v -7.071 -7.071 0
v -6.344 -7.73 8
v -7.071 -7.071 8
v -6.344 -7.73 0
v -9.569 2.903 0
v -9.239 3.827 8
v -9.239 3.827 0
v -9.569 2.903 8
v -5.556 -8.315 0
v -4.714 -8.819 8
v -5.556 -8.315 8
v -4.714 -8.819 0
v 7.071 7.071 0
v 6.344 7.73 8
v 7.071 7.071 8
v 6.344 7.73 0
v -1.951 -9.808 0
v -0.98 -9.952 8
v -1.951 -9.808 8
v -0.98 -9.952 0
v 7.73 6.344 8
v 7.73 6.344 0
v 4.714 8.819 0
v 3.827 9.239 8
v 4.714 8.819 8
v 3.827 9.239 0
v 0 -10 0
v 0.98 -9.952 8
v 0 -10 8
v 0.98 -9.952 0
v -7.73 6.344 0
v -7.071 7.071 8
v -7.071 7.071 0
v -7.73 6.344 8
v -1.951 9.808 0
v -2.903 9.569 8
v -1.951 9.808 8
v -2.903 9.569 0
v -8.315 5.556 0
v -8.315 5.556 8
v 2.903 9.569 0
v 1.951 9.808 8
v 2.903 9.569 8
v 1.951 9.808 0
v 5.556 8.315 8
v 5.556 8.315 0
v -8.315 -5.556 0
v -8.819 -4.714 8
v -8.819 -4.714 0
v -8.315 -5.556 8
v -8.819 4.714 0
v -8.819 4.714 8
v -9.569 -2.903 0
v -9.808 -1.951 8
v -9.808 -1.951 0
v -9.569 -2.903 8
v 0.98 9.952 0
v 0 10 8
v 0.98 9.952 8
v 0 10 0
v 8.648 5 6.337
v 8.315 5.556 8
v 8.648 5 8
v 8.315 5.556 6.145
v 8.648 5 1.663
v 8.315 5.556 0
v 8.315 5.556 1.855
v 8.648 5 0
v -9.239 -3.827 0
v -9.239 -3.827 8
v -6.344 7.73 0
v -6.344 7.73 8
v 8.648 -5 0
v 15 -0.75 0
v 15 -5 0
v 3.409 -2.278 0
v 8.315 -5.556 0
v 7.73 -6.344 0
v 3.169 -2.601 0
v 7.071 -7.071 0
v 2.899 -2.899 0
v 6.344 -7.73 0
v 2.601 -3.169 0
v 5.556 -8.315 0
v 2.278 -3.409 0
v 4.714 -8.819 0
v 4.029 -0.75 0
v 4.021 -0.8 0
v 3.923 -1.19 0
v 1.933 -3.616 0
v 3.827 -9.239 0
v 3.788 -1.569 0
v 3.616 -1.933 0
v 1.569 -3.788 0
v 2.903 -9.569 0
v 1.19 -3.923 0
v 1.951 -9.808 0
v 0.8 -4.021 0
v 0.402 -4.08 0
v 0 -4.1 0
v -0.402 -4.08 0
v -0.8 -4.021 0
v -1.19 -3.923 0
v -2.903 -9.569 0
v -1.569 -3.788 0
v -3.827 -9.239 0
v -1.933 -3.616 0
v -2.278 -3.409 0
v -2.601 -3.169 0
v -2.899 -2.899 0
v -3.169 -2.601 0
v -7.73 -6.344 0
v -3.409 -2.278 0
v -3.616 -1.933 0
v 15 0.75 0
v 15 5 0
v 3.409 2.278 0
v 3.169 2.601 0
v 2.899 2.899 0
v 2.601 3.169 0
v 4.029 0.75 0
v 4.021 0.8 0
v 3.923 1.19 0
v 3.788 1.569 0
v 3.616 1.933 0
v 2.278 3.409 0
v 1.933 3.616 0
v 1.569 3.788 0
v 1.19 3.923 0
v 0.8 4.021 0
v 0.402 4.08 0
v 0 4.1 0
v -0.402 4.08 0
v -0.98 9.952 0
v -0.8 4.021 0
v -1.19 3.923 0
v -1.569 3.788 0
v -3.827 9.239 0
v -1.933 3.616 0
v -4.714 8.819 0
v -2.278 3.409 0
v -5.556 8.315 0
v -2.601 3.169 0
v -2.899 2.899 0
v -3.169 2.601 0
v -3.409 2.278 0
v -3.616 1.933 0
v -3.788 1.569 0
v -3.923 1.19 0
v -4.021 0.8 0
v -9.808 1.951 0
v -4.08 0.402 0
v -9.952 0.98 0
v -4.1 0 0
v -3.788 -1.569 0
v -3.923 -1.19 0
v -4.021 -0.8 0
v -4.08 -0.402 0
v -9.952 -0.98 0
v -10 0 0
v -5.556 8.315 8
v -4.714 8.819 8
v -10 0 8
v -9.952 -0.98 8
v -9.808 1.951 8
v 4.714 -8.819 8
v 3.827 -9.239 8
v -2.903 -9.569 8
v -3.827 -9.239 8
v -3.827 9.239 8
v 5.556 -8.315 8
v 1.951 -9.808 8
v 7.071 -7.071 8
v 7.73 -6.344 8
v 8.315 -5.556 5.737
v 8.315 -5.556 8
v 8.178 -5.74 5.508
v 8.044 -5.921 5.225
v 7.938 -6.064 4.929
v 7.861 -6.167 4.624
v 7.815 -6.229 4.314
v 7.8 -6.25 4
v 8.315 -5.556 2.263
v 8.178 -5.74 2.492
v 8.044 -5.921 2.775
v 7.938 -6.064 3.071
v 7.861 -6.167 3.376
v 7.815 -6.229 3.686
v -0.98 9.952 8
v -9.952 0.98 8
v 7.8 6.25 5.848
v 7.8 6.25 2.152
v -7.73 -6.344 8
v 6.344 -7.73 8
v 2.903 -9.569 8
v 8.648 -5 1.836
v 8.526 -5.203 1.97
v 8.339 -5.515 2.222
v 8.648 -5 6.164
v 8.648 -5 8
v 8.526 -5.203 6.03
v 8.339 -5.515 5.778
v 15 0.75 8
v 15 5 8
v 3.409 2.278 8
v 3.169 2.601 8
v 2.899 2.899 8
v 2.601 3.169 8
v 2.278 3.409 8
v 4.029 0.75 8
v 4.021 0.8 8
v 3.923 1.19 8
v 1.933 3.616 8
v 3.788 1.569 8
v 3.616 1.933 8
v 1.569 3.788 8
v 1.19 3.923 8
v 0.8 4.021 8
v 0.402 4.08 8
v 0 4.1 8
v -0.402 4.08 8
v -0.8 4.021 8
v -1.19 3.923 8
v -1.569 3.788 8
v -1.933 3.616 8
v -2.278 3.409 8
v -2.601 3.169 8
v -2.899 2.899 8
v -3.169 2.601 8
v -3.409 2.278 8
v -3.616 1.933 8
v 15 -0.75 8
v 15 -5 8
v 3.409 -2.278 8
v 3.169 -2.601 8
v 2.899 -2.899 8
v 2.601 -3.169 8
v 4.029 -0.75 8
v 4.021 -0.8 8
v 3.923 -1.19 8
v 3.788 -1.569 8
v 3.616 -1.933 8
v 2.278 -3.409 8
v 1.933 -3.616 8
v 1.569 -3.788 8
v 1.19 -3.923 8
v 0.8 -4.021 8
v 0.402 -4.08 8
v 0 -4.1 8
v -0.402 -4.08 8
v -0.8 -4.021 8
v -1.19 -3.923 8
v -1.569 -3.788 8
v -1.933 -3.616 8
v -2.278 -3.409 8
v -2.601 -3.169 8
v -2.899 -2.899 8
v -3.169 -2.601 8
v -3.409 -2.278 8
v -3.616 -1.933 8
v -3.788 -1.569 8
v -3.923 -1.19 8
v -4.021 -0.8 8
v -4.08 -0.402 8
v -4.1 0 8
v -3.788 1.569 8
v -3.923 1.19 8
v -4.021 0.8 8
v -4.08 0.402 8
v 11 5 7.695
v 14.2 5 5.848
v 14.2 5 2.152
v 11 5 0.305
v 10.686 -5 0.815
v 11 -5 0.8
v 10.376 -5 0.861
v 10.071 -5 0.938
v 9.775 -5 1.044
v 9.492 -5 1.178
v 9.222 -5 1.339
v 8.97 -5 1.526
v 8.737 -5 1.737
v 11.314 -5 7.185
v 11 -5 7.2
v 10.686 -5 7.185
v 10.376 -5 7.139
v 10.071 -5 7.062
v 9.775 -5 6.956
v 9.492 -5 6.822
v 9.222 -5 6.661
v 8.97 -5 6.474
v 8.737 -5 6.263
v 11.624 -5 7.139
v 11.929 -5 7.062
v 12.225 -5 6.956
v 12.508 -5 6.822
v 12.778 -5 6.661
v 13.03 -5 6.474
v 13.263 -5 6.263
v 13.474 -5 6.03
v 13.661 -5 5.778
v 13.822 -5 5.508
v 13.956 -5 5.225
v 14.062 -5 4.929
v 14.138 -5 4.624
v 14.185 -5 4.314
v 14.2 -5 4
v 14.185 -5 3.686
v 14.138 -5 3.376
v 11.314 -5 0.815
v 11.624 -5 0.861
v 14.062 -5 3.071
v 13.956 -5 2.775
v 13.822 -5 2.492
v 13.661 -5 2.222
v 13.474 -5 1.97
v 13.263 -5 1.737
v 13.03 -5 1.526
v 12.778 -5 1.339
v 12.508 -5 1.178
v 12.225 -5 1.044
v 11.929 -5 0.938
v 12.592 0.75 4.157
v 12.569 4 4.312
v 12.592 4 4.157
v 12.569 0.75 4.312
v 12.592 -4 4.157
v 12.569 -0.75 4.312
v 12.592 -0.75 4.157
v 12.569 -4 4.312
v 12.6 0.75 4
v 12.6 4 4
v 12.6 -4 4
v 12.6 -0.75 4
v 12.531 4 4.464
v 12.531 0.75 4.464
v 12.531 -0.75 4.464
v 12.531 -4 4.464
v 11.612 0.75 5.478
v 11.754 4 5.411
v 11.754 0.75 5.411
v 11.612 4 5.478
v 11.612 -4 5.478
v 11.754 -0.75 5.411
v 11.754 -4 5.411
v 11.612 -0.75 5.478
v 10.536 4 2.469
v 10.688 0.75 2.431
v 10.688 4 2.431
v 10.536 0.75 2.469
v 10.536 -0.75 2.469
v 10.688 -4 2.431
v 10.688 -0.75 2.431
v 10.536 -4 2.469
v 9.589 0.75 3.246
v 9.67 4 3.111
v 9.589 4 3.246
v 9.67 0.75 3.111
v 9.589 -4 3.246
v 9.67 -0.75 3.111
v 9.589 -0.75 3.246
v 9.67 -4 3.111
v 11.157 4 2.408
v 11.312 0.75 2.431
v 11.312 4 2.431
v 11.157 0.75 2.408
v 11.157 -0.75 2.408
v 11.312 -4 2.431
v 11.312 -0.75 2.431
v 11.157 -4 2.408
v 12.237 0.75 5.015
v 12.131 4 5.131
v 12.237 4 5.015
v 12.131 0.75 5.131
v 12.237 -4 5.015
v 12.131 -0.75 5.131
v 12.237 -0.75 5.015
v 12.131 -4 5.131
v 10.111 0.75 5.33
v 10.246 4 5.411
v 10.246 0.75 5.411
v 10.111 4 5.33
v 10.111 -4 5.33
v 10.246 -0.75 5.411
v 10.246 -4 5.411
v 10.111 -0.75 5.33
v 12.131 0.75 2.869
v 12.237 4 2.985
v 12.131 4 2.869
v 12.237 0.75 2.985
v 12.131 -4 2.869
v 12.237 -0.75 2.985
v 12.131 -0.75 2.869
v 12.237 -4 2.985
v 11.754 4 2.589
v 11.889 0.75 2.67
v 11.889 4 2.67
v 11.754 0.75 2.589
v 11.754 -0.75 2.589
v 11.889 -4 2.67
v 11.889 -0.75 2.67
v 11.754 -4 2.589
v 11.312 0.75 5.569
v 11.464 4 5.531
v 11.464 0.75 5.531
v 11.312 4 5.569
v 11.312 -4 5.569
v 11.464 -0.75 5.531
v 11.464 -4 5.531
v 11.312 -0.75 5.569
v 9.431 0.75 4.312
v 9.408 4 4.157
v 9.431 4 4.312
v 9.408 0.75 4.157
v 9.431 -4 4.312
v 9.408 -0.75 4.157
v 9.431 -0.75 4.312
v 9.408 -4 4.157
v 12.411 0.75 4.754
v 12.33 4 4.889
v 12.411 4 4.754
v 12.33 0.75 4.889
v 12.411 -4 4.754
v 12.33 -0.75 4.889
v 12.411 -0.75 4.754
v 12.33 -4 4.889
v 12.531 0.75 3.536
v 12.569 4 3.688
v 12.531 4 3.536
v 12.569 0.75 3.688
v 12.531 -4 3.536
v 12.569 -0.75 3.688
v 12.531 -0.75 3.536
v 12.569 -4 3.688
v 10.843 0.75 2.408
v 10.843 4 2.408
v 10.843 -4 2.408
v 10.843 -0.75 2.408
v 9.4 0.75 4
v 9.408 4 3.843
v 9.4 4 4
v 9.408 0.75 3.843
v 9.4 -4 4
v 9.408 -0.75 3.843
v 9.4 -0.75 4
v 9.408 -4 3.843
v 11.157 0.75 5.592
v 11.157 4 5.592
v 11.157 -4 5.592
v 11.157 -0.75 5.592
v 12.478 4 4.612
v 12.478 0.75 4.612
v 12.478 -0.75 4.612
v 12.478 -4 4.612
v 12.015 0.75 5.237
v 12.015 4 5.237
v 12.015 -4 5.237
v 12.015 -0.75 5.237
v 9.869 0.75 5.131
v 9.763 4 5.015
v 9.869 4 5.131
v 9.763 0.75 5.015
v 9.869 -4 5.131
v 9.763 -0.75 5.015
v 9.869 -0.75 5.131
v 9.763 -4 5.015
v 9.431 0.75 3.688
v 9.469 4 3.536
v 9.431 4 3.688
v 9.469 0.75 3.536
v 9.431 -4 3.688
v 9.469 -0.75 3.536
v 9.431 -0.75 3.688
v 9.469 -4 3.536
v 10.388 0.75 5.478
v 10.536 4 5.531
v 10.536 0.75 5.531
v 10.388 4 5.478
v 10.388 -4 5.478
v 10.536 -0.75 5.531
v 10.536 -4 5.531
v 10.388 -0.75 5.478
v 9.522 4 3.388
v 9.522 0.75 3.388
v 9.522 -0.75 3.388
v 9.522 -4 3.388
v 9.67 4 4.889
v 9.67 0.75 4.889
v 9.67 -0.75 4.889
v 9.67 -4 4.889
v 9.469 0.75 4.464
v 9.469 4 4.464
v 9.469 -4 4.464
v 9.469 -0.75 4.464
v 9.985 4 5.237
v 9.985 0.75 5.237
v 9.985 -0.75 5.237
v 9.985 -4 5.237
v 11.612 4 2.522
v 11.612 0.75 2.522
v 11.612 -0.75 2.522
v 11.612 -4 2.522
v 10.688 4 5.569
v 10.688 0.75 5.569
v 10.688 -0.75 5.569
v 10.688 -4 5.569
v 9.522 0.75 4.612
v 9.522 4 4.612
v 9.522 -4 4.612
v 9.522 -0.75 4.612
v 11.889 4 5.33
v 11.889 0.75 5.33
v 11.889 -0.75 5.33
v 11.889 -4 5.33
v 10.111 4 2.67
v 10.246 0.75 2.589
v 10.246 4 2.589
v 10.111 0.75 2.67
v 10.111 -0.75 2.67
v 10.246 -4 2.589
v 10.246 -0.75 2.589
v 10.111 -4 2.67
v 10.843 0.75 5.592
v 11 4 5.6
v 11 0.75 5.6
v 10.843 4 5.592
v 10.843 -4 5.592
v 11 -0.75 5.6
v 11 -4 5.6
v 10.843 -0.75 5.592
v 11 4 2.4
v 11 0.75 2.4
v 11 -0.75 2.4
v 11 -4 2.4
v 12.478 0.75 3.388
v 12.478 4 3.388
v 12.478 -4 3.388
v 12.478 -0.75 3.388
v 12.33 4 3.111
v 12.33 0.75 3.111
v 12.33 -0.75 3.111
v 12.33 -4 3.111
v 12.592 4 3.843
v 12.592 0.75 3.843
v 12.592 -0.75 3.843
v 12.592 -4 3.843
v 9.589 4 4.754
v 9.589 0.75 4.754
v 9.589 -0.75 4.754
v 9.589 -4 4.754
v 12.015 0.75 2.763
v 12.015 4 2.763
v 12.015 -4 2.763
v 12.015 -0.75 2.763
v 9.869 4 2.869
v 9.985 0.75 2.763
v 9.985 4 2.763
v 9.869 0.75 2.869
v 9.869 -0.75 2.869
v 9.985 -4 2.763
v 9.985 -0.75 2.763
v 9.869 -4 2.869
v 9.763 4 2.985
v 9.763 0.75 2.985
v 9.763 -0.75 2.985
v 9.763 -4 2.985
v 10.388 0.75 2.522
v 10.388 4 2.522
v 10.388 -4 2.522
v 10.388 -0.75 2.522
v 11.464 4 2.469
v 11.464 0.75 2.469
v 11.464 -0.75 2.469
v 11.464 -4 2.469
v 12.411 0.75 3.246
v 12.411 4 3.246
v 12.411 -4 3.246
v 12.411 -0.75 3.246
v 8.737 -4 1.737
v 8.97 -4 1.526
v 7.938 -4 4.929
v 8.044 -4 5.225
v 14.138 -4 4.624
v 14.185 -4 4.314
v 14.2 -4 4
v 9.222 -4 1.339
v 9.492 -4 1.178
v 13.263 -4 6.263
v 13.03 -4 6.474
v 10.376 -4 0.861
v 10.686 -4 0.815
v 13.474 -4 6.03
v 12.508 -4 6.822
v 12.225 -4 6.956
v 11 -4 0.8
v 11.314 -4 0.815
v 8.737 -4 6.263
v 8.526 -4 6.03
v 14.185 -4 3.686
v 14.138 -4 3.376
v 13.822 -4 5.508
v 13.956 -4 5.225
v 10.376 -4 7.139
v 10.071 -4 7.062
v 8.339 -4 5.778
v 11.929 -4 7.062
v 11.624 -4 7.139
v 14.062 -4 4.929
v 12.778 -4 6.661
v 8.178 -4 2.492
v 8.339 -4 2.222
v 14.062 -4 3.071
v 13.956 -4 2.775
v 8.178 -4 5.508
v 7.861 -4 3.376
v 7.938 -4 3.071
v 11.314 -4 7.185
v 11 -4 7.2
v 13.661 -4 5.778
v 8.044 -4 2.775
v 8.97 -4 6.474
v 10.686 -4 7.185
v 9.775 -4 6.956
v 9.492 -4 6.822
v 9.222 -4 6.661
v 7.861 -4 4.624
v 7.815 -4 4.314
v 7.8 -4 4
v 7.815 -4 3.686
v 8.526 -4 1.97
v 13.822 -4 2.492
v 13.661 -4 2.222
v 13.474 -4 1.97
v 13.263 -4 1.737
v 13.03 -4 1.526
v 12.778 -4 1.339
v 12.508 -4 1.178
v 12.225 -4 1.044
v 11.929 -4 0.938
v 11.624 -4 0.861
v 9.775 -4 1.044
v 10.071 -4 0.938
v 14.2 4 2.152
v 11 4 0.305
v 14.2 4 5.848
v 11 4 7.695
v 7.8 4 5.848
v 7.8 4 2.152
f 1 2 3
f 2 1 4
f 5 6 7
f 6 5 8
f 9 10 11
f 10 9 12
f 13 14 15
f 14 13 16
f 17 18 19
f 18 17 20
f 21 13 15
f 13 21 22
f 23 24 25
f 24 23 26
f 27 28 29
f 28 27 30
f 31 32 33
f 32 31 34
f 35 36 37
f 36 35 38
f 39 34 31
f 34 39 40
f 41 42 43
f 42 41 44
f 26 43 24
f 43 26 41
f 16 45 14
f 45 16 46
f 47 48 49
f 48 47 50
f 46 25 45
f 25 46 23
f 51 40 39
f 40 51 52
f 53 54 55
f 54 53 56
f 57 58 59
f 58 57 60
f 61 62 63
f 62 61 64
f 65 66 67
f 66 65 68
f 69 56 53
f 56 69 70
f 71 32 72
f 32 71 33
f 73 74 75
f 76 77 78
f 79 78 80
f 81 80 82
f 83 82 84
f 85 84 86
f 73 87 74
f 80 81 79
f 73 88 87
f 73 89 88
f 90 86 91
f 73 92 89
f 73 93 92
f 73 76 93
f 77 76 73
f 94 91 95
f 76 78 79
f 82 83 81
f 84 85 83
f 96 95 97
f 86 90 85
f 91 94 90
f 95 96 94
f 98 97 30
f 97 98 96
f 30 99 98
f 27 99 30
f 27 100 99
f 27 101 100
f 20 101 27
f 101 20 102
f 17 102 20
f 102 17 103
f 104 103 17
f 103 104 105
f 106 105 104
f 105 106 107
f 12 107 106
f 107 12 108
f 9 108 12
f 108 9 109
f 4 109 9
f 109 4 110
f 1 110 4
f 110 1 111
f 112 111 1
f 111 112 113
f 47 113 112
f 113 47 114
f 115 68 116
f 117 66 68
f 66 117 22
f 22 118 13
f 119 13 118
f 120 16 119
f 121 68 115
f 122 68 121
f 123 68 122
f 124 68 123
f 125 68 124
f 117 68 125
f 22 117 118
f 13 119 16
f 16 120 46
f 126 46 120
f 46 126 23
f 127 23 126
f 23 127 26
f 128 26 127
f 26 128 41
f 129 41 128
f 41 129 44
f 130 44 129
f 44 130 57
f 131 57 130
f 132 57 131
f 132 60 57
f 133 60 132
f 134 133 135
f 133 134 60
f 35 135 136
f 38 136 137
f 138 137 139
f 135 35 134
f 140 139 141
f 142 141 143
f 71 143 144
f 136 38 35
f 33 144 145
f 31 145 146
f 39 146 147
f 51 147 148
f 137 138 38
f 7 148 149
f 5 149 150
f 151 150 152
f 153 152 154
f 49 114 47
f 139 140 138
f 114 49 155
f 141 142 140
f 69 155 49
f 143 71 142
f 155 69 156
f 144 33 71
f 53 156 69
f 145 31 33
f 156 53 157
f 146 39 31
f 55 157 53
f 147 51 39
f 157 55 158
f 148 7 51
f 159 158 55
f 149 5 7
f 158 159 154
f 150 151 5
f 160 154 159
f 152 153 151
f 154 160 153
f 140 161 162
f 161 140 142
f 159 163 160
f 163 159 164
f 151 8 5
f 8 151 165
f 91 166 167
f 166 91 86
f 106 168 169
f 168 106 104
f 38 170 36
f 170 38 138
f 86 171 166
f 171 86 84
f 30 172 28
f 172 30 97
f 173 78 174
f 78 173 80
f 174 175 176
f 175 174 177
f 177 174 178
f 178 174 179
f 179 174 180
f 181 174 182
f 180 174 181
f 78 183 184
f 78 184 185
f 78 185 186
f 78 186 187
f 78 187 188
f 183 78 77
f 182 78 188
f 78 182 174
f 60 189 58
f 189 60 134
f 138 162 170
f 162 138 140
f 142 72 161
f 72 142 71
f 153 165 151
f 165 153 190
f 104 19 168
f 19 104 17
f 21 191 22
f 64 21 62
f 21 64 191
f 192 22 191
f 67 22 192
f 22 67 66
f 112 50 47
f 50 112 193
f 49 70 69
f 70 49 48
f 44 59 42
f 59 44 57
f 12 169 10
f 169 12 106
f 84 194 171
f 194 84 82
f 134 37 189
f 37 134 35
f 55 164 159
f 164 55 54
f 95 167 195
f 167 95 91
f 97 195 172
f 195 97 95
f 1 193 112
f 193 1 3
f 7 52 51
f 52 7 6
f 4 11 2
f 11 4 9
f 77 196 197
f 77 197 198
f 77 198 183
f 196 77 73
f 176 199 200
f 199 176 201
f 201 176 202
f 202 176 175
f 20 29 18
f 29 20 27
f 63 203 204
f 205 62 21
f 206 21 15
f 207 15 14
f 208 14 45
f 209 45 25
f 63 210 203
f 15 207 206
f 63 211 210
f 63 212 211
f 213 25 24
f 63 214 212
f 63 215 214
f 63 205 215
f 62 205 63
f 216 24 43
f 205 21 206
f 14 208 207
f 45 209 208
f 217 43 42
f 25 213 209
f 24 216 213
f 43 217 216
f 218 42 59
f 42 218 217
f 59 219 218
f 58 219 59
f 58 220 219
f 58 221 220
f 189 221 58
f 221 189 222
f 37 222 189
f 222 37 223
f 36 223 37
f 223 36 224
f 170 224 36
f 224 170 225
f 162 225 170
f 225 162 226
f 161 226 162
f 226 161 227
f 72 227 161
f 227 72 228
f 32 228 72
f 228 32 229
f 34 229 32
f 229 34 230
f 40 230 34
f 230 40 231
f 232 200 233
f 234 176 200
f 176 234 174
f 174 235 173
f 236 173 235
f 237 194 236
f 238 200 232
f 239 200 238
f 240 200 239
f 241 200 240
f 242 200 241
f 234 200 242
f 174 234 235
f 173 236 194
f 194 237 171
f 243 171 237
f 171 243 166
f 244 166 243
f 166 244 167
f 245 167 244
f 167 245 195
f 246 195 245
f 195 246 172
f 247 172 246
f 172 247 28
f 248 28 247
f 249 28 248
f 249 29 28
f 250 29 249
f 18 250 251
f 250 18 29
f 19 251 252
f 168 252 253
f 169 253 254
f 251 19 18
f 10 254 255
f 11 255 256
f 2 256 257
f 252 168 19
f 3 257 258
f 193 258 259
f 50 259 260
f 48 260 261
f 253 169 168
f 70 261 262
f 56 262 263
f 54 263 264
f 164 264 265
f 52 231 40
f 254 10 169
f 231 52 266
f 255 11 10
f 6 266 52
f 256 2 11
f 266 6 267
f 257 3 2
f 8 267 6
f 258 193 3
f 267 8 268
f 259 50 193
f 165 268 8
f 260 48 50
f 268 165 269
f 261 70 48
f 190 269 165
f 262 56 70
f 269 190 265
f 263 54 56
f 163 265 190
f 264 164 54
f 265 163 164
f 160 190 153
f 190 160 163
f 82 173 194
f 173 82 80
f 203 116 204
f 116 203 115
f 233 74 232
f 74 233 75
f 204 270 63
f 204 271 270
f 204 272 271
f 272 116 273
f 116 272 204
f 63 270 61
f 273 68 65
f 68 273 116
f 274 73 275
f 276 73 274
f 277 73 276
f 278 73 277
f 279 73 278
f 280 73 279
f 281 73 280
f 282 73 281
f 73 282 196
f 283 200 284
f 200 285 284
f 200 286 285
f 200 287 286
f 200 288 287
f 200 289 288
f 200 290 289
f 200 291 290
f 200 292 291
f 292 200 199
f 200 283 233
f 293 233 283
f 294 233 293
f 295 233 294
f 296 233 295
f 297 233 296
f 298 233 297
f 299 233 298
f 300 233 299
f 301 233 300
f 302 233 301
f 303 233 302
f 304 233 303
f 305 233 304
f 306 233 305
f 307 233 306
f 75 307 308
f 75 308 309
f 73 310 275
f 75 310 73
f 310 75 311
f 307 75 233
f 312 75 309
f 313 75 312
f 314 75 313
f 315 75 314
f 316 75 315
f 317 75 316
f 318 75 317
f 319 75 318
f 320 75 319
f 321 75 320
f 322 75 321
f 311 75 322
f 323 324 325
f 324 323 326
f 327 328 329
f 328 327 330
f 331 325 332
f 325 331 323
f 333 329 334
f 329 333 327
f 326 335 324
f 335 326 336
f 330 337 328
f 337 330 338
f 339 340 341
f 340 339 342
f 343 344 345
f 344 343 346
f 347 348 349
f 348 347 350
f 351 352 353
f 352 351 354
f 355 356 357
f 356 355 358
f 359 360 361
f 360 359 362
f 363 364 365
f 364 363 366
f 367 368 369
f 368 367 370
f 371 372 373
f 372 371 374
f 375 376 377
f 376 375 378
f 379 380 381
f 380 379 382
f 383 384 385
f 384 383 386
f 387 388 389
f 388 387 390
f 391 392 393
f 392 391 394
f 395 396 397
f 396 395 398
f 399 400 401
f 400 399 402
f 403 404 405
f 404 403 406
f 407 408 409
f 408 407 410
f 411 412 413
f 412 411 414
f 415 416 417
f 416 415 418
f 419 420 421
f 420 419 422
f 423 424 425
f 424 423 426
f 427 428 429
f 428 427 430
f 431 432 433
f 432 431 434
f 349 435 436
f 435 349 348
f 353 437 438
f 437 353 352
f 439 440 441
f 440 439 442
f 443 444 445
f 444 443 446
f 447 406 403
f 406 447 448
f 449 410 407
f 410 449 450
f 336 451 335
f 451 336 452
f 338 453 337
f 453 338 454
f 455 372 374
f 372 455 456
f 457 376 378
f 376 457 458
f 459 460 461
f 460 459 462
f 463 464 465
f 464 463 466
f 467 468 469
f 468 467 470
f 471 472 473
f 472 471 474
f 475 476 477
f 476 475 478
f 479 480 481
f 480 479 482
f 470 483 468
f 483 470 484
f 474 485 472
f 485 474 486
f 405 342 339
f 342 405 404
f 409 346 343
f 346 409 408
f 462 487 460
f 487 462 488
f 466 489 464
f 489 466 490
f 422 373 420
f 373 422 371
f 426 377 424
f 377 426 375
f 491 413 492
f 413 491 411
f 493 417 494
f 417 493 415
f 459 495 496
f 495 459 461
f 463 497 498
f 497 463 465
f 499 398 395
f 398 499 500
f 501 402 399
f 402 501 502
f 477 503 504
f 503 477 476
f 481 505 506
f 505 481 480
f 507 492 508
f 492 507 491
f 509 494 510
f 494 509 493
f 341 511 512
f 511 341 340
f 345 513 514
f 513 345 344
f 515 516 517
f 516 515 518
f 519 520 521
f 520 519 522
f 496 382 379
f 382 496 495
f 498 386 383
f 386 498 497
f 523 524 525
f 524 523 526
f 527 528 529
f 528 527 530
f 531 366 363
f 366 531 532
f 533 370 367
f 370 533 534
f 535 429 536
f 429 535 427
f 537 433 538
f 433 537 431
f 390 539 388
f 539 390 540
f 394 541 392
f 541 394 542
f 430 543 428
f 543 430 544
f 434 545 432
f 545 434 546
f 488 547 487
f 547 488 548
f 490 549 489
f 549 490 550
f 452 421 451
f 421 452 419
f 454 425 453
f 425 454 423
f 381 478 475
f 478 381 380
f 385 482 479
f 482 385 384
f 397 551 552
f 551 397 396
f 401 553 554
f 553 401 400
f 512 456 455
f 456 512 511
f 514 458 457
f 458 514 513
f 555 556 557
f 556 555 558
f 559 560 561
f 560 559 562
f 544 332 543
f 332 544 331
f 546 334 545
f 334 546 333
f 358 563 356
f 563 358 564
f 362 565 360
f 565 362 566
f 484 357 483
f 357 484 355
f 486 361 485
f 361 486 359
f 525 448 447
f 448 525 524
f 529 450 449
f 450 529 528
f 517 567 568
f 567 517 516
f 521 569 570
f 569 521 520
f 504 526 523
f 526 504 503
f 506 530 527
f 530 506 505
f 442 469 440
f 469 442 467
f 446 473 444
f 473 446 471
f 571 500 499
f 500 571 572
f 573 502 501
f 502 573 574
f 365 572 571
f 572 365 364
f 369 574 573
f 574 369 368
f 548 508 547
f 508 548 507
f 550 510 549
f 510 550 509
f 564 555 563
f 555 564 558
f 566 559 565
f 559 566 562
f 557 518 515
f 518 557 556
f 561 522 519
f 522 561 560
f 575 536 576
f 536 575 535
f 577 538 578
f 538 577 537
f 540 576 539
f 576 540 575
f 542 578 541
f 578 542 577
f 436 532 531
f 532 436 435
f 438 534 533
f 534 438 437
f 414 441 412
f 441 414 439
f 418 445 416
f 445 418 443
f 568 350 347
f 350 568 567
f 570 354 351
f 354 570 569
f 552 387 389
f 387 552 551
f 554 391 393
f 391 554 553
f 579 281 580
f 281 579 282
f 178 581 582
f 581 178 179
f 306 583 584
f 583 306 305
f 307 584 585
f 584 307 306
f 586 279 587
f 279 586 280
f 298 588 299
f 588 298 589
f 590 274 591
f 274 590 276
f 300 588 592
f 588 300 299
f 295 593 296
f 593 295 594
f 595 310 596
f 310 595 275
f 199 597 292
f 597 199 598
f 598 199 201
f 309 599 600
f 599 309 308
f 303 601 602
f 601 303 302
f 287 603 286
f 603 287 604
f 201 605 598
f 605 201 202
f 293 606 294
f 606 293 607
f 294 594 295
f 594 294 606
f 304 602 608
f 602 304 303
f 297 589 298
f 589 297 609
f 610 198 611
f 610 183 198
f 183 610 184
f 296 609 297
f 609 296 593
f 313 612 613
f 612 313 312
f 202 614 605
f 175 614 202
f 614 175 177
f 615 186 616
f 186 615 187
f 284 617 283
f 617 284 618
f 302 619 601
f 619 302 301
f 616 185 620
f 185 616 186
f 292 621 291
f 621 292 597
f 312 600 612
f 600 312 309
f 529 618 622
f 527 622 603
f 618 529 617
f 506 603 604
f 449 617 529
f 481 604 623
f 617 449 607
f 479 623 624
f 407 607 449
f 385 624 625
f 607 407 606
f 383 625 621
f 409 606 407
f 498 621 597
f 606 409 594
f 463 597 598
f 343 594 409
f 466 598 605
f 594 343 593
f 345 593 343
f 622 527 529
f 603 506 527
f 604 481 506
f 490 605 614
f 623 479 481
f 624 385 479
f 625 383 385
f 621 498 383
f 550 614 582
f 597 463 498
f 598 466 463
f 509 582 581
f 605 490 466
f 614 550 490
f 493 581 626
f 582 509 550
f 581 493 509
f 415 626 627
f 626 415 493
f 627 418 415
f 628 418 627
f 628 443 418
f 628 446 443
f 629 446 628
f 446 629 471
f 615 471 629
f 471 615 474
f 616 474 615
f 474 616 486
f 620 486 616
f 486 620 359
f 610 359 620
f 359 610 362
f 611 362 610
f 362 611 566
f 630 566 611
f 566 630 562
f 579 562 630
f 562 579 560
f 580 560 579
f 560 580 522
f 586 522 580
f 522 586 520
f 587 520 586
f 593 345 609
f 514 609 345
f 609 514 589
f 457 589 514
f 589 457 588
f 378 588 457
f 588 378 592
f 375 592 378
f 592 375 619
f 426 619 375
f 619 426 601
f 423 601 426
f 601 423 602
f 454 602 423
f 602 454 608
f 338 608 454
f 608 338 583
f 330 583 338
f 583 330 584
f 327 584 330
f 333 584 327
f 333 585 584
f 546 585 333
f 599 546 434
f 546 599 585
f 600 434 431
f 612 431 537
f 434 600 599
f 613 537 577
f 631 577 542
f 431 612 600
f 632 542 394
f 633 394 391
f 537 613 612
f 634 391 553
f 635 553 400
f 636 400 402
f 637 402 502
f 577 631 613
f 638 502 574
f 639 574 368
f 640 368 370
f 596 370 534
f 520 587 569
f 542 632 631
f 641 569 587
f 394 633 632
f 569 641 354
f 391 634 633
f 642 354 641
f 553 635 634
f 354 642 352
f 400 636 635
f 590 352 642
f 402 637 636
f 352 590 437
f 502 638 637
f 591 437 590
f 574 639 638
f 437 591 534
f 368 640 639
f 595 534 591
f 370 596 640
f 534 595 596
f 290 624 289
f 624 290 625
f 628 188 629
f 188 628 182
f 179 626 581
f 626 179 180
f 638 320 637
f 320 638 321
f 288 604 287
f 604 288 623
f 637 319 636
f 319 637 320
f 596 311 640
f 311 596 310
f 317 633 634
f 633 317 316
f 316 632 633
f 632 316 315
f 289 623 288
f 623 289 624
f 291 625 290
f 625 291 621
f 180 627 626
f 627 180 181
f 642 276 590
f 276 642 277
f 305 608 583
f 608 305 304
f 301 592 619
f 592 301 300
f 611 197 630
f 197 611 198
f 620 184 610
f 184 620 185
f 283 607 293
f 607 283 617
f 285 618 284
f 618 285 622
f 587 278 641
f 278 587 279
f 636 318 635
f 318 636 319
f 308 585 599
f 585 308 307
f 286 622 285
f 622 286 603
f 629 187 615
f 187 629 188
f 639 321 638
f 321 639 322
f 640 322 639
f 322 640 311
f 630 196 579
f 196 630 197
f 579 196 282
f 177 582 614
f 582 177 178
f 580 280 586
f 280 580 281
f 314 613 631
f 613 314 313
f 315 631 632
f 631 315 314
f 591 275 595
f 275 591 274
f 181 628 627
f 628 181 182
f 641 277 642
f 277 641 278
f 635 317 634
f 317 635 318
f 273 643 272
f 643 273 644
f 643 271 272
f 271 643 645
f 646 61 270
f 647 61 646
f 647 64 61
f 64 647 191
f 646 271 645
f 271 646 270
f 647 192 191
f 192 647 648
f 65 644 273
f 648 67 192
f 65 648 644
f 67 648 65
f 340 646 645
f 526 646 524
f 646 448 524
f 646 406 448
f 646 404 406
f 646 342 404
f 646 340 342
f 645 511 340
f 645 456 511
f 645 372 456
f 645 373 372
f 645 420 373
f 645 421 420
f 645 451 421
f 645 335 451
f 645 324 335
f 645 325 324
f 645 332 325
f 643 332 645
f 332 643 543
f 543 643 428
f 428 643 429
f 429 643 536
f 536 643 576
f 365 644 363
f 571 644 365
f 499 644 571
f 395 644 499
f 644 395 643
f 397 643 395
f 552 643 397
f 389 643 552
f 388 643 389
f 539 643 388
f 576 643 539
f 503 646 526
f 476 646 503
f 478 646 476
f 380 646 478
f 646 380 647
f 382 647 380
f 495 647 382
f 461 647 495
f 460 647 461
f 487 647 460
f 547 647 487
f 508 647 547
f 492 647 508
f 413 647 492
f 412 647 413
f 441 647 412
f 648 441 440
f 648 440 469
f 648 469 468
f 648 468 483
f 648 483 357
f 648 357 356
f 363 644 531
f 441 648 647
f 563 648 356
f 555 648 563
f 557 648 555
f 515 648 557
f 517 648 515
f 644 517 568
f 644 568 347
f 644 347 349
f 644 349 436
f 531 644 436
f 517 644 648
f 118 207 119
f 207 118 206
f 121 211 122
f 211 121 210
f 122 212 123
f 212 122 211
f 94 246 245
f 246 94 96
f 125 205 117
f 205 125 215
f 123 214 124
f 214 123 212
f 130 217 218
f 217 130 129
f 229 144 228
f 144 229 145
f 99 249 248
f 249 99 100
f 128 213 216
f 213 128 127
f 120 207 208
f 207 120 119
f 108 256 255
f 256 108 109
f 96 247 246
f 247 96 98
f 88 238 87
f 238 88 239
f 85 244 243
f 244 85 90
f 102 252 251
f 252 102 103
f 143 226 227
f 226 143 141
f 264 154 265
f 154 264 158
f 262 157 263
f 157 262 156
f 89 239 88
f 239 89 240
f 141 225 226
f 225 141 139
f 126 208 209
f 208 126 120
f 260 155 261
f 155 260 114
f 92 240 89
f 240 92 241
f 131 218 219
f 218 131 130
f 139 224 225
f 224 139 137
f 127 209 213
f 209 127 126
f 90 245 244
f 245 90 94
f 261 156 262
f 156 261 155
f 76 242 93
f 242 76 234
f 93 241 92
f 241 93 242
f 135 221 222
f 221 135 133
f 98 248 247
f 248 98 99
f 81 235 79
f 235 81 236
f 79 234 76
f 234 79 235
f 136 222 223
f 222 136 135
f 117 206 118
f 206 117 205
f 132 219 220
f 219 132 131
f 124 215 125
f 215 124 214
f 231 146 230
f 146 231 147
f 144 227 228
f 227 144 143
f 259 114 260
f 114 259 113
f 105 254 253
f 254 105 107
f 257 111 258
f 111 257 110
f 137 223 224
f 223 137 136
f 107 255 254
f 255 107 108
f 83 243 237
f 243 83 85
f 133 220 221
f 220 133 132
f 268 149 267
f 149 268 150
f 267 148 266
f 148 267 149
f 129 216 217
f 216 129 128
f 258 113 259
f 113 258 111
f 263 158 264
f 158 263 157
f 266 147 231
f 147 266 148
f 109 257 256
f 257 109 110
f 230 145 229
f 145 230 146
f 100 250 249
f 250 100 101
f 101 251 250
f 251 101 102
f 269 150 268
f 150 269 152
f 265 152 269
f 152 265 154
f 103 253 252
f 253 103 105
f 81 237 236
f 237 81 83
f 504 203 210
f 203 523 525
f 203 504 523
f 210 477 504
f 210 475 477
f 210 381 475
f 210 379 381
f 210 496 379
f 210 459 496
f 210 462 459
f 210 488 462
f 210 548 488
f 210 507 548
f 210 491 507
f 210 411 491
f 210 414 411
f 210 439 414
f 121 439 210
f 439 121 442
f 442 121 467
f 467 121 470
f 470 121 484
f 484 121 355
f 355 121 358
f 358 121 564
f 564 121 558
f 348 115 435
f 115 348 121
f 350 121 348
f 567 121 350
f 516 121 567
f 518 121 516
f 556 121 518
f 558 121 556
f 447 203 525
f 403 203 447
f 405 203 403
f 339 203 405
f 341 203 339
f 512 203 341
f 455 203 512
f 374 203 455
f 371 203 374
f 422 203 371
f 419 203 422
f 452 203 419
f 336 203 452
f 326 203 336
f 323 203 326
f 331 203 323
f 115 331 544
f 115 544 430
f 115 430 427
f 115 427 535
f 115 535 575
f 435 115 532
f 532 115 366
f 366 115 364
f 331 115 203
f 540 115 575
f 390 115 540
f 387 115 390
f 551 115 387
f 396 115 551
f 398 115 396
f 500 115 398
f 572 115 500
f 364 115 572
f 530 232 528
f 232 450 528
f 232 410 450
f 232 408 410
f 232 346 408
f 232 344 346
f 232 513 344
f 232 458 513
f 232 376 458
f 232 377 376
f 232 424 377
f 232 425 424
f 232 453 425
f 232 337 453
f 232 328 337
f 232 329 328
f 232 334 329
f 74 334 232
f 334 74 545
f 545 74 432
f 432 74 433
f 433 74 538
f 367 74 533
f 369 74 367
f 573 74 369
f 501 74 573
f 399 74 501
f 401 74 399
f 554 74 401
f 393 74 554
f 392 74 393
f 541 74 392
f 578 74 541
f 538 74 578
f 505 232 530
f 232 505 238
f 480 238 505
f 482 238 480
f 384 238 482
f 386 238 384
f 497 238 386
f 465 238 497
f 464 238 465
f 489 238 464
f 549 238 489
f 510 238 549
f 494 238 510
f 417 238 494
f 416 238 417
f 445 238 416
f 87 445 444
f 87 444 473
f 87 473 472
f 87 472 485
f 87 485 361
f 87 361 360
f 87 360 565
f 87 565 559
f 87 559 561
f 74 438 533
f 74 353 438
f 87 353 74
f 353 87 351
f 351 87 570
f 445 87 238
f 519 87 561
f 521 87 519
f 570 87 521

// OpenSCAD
// file: ../fj.scad
// FreeJet FJ-2 - shared dimensions and helpers.
// Coordinates (mm): X = carriage travel (left -> right, 0 = inner face of the left plate)
//                   Y = paper travel (paper moves toward +Y, 0 = black nozzle line)
//                   Z = up (0 = paper surface on the platen)
// Every part file includes this, so changing a number here moves everything.

$fn = 64;
e = 0.01;
tol = 0.25;          // clearance for printed fits

// ---- which cartridges? (HP 63 / 302 / 123 / 803 family) ---------------------------
// "K" = black only, "CMY" = tri-colour only, "KCMY" = black + tri-colour side by side.
CARTS     = "K";
N_SLOTS   = CARTS == "KCMY" ? 2 : 1;
head_pitch = 28;                      // black-to-colour cartridge spacing in the carriage
head_span = (N_SLOTS - 1) * head_pitch;
function slot_ink(i) = CARTS == "CMY" ? "C" : (i == 0 ? "K" : "C");

// ---- frame ----------------------------------------------------------------
inner_w   = 360 + 2 * head_span;     // distance between the side plates
plate_t   = 8;
rod_d     = 8;
// rods reach through both plates plus a printed collar each side; rounded up to a length
// you can buy (400 mm for one cartridge, 500 mm for black + colour, or cut them)
rod_len   = ceil((inner_w + 2 * 8 + 2 * 8 + 8) / 100) * 100;
plate_y0  = -128;    // side plate outline in Y (includes the roll-holder ear)
plate_y1  = 84;
plate_z0  = -70;     // bottom of the feet
plate_z1  = 70;

// ---- carriage rods ------------------------------------------------------------
rail_y    = -42;
rail_lo_z = 14;
rail_hi_z = 50;
belt_y    = -60;     // axis line of the X motor pulley and idler (both vertical)
belt_z    = 32;      // height of the belt centre
belt_r    = 20*2/PI/2;          // 20T GT2 pitch radius
belt_front_y = belt_y + belt_r; // strand clamped to the carriage
belt_back_y  = belt_y - belt_r; // return strand, passes behind the carriage

// ---- paper path: ONE feed roller just behind the printhead ----------------------------
tire_od   = 22;      // feed roller outside diameter (TPU tires on printed hubs)
feed_y    = -25;     // feed roller axis: as close behind the nozzles as the carriage allows
shaft_z   = -tire_od/2;
// spring-steel leaves press the paper onto the roller (no pinch shaft). They hang from a light
// printed bar spanning the frame above the paper entry; the paper slides in under the bar.
leaf_bar_y = -70;    // bar centre line
leaf_bar_z = 3;      // underside of the bar (paper passes below)
leaf_y1   = -21;     // leaf tip, just past the top of the roller
leaf_w    = 10;      // 0.3 mm spring steel (feeler-gauge strip), cut 52 mm long
leaf_angle = 7.5;    // ledge tilt: the free leaf would end ~2 mm below the paper -> ~0.4 N
tray_y1   = -74;     // front edge of the paper tray
// platen = a printed beam of bolted segments that also braces the frame
web_y     = [-50, -8, 22, 74];   // stiffening webs under the platen (run along X)
web_t     = 4;
web_z0    = -18;                  // bottom of the webs
flange_y  = [-50, 74];            // the two outer webs bolt to the side plates
flange_z  = [-9, -16];            // M3 bolt heights in the plates (vertical slots in the flanges)
platen_y0 = -62;     // platen top surface extent (entry ramp -> tear-off edge)
platen_y1 = 84;
sensor_y  = -42;     // paper lever switch, just before the roller nip
paper_x0  = 70 + head_span;   // paper left edge (fixed guide)
paper_w   = 220;     // widest sheet
sensor_x  = paper_x0 + 14;   // paper lever switch X
tire_x    = [paper_x0+20, paper_x0+75, paper_x0+145, paper_x0+200];  // roller positions

// ---- feed drive: 20T on the motor -> 60T printed pulley on the roller, 200 mm GT2 loop ----
pulley_teeth = 60;
feed_ctr  = 58.6;                     // centre distance for a 200 mm loop with 20T/60T
feed_dir  = [-0.79, -0.62];           // motor sits below and behind the roller
feed_motor_y = feed_y + feed_ctr * feed_dir[0];
feed_motor_z = shaft_z + feed_ctr * feed_dir[1];

// ---- roll holder: keyhole slots in the side plates -------------------------------------
roll_y    = -116;    // spindle axis
roll_z    = 62;
spindle_d = 12;

// ---- cartridges (MEASURE YOURS AND ADJUST) ------------------------------------------------
cart_w    = 21;      // across the carriage travel (X)
cart_d    = 37;      // front-to-back (Y)
cart_h    = 47;
nz_back   = 12;      // nozzle line distance from the contact (back) face
head_gap  = 1.2;     // nozzle plate height above the paper
flex_w    = 22;  flex_h = 26;   // area for the contact flex (salvaged from an HP DeskJet carriage)
carr_w    = 54 + head_span;     // carriage width along X
park_x    = 33;      // black (slot 0) nozzles X when parked (capped); carriage left face at 6
function slot_x(i) = (i - (N_SLOTS - 1) / 2) * head_pitch;   // slot i vs carriage centre

// ---- service station ------------------------------------------------------------
home_x    = 30;      // slot-0 nozzle X where the home switch trips (firmware X = 0)
sled_engage = 9;     // sled travel when parked (cap pressed on the nozzles)
cap_x     = park_x + sled_engage;   // slot-0 cap centre with the sled retracted (caps at head_pitch)
wiper_x   = 56 + head_span;
spit_x    = 62 + head_span;      // firmware spit_x_um = (spit_x - home_x) * 1000

// ---- hardware -----------------------------------------------------------------
lm8uu_d = 15; lm8uu_l = 24;
b608_d = 22; b608_w = 7;
m3 = 3.2; m3_head = 6; m3_nut = 6.4;   // across flats + tolerance
m25 = 2.7;
nema_hole = 31; nema_body = 42.3; nema_boss = 22.5;

// ---- derived layout ------------------------------------------------------------------
// segment boundaries: segment 0 carries the service-station end, the rest share the width
platen_seg0_end = paper_x0 + 88 <= 160 ? paper_x0 + 88 : paper_x0 - 10;   // keep joints off the sensor
platen_rest = ceil((inner_w - platen_seg0_end) / 130);
platen_segs = 1 + platen_rest;
function platen_seg_x(s) = s == 0 ? [0, platen_seg0_end] :
    let(w = (inner_w - platen_seg0_end) / platen_rest)
    [platen_seg0_end + (s - 1) * w, s == platen_segs - 1 ? inner_w : platen_seg0_end + s * w];
// electronics tray position (bolts through the platen webs)
etray_x0  = paper_x0 + 80 + (N_SLOTS > 1 ? 15 : 0);   // keep its bolts off the platen joints
etray_bolts = [etray_x0 + 25, etray_x0 + 95];

module rod_hole(l=40, d=rod_d+tol) { cylinder(d=d, h=l, center=true); }
module m3_hole(l=40) { cylinder(d=m3, h=l, center=true); }
module m3_nut_trap(h=3) { cylinder(d=m3_nut/cos(30), h=h, $fn=6); }
module rounded_box(size, r=3) {
    hull() for (x=[r, size[0]-r], y=[r, size[1]-r]) translate([x, y, 0]) cylinder(r=r, h=size[2]);
}
module nema17_holes(l=20, slot=0) {
    for (x=[-1,1], y=[-1,1]) hull() for (s=[-slot/2, slot/2])
        translate([x*nema_hole/2, y*nema_hole/2 + s, 0]) cylinder(d=m3, h=l, center=true);
    hull() for (s=[-slot/2, slot/2]) translate([0, s, 0]) cylinder(d=nema_boss+1, h=l, center=true);
}

// ---- printed shaft collars --------------------------------------------------------
collar_od = 20; collar_w = 8;

// ---- carriage details ------------------------------------------------------------
carr_z0   = head_gap + 2.5;   // carriage walls stop above the nozzle plate
carr_z1   = 60;
cart_rest_z = 14;              // height (above cartridge bottom) of the side rest tabs; 0 = none
// main file
// Printed split collar for the 8 mm rods (print 6, PETG, 100 % infill). M3x16 + nut.
// Replaces bought shaft collars: both rails and the feed roller shaft get one collar
// against the outside of each side plate.
include <../fj.scad>
module rod_collar() difference() {
    union() {
        cylinder(d=collar_od, h=collar_w);
        translate([0, -5, 0]) cube([collar_od/2 + 5, 10, collar_w]);
    }
    translate([0,0,-1]) cylinder(d=rod_d + 0.2, h=collar_w + 2);
    translate([0, -0.75, -1]) cube([collar_od, 1.5, collar_w + 2]);              // slit
    translate([collar_od/2 + 1, 0, collar_w/2]) rotate([90,0,0]) {
        cylinder(d=m3, h=20, center=true);
        translate([0,0,4]) cylinder(d=m3_head + 0.4, h=10);
        translate([0,0,-4 - 10]) rotate(30) cylinder(d=m3_nut/cos(30), h=10, $fn=6);
    }
}
rod_collar();
